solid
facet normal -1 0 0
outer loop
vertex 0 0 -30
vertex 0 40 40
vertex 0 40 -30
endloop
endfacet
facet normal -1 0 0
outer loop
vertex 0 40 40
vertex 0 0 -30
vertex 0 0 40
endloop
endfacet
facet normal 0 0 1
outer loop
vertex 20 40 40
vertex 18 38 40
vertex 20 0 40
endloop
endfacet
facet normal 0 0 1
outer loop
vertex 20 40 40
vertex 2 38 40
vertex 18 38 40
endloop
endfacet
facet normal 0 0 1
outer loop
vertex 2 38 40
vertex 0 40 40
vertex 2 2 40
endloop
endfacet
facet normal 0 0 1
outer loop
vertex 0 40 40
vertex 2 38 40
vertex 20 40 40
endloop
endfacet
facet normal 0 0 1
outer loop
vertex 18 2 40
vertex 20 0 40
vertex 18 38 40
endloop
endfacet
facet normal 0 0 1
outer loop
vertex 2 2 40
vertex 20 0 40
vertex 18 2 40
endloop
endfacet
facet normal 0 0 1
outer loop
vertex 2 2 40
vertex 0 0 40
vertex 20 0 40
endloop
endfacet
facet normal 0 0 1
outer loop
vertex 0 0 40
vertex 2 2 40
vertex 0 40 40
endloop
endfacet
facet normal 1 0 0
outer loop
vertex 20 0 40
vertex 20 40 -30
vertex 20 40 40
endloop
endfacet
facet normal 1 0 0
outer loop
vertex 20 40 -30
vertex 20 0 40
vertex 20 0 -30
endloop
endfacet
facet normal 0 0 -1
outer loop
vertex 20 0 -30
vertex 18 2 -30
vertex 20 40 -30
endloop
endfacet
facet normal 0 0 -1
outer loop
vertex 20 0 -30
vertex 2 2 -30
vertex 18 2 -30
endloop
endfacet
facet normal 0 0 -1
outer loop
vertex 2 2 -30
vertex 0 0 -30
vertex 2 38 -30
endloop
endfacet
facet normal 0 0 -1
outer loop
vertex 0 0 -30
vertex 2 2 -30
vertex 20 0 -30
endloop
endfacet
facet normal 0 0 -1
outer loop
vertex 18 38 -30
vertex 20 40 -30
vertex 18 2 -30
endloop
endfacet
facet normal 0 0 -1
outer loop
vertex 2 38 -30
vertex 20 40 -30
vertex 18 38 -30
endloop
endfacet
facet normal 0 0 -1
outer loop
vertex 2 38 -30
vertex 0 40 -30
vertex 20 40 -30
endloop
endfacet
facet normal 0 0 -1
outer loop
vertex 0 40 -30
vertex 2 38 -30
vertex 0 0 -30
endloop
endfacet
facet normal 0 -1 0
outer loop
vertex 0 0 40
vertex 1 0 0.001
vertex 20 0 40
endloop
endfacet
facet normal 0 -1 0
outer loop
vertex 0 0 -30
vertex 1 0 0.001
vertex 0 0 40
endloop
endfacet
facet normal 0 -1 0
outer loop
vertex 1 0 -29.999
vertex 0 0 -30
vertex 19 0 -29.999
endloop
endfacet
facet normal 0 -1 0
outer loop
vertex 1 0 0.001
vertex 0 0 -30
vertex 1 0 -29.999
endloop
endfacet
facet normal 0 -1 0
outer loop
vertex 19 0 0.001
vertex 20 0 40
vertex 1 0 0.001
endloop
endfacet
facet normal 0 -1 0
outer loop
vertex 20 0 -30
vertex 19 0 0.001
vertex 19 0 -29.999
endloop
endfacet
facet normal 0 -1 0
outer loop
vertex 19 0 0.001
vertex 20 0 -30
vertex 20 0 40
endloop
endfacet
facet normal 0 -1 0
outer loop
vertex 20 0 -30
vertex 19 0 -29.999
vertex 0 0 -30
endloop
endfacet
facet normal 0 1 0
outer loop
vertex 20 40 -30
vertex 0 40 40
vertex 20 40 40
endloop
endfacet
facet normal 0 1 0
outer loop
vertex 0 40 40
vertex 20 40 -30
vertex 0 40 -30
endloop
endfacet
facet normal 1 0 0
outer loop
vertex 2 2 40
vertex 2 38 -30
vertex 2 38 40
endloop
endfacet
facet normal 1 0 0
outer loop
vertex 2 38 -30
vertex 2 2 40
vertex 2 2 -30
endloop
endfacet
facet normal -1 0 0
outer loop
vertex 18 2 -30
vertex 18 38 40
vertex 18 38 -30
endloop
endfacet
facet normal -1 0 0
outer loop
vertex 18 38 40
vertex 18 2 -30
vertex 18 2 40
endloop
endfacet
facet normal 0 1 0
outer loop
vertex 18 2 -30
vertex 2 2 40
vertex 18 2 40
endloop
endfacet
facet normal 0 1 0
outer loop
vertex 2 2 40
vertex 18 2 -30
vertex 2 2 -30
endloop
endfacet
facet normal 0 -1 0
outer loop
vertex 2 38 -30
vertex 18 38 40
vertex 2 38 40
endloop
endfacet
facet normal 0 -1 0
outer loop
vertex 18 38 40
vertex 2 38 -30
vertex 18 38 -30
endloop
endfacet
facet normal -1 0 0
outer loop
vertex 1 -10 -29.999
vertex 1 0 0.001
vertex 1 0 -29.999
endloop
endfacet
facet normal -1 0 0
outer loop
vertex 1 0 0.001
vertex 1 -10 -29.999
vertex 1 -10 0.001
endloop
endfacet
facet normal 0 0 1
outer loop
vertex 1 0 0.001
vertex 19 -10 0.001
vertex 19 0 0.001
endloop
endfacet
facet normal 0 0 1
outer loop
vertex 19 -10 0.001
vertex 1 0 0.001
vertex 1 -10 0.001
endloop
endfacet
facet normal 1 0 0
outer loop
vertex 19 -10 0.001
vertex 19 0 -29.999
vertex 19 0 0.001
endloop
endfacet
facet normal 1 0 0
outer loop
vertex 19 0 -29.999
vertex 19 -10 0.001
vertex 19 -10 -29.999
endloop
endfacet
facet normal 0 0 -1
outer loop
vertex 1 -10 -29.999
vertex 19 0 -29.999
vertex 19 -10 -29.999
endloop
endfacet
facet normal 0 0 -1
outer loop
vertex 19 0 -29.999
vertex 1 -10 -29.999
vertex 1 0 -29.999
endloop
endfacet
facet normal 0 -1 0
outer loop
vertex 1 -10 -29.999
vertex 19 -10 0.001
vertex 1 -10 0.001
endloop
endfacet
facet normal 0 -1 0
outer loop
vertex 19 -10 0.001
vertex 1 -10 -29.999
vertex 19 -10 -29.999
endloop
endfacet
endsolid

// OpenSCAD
module vibrate_holder()
{
    union()
    {
        difference()
        {
            cube([20, 40, 70]);
            translate([2, 2, -1]) cube([20-2*2, 40-2*2, 70+5]);
        }
        translate([1, -15+5, 0.001]) cube([18, 16-5, 30]);
    }
}

translate([0, 0, -30]) vibrate_holder();
